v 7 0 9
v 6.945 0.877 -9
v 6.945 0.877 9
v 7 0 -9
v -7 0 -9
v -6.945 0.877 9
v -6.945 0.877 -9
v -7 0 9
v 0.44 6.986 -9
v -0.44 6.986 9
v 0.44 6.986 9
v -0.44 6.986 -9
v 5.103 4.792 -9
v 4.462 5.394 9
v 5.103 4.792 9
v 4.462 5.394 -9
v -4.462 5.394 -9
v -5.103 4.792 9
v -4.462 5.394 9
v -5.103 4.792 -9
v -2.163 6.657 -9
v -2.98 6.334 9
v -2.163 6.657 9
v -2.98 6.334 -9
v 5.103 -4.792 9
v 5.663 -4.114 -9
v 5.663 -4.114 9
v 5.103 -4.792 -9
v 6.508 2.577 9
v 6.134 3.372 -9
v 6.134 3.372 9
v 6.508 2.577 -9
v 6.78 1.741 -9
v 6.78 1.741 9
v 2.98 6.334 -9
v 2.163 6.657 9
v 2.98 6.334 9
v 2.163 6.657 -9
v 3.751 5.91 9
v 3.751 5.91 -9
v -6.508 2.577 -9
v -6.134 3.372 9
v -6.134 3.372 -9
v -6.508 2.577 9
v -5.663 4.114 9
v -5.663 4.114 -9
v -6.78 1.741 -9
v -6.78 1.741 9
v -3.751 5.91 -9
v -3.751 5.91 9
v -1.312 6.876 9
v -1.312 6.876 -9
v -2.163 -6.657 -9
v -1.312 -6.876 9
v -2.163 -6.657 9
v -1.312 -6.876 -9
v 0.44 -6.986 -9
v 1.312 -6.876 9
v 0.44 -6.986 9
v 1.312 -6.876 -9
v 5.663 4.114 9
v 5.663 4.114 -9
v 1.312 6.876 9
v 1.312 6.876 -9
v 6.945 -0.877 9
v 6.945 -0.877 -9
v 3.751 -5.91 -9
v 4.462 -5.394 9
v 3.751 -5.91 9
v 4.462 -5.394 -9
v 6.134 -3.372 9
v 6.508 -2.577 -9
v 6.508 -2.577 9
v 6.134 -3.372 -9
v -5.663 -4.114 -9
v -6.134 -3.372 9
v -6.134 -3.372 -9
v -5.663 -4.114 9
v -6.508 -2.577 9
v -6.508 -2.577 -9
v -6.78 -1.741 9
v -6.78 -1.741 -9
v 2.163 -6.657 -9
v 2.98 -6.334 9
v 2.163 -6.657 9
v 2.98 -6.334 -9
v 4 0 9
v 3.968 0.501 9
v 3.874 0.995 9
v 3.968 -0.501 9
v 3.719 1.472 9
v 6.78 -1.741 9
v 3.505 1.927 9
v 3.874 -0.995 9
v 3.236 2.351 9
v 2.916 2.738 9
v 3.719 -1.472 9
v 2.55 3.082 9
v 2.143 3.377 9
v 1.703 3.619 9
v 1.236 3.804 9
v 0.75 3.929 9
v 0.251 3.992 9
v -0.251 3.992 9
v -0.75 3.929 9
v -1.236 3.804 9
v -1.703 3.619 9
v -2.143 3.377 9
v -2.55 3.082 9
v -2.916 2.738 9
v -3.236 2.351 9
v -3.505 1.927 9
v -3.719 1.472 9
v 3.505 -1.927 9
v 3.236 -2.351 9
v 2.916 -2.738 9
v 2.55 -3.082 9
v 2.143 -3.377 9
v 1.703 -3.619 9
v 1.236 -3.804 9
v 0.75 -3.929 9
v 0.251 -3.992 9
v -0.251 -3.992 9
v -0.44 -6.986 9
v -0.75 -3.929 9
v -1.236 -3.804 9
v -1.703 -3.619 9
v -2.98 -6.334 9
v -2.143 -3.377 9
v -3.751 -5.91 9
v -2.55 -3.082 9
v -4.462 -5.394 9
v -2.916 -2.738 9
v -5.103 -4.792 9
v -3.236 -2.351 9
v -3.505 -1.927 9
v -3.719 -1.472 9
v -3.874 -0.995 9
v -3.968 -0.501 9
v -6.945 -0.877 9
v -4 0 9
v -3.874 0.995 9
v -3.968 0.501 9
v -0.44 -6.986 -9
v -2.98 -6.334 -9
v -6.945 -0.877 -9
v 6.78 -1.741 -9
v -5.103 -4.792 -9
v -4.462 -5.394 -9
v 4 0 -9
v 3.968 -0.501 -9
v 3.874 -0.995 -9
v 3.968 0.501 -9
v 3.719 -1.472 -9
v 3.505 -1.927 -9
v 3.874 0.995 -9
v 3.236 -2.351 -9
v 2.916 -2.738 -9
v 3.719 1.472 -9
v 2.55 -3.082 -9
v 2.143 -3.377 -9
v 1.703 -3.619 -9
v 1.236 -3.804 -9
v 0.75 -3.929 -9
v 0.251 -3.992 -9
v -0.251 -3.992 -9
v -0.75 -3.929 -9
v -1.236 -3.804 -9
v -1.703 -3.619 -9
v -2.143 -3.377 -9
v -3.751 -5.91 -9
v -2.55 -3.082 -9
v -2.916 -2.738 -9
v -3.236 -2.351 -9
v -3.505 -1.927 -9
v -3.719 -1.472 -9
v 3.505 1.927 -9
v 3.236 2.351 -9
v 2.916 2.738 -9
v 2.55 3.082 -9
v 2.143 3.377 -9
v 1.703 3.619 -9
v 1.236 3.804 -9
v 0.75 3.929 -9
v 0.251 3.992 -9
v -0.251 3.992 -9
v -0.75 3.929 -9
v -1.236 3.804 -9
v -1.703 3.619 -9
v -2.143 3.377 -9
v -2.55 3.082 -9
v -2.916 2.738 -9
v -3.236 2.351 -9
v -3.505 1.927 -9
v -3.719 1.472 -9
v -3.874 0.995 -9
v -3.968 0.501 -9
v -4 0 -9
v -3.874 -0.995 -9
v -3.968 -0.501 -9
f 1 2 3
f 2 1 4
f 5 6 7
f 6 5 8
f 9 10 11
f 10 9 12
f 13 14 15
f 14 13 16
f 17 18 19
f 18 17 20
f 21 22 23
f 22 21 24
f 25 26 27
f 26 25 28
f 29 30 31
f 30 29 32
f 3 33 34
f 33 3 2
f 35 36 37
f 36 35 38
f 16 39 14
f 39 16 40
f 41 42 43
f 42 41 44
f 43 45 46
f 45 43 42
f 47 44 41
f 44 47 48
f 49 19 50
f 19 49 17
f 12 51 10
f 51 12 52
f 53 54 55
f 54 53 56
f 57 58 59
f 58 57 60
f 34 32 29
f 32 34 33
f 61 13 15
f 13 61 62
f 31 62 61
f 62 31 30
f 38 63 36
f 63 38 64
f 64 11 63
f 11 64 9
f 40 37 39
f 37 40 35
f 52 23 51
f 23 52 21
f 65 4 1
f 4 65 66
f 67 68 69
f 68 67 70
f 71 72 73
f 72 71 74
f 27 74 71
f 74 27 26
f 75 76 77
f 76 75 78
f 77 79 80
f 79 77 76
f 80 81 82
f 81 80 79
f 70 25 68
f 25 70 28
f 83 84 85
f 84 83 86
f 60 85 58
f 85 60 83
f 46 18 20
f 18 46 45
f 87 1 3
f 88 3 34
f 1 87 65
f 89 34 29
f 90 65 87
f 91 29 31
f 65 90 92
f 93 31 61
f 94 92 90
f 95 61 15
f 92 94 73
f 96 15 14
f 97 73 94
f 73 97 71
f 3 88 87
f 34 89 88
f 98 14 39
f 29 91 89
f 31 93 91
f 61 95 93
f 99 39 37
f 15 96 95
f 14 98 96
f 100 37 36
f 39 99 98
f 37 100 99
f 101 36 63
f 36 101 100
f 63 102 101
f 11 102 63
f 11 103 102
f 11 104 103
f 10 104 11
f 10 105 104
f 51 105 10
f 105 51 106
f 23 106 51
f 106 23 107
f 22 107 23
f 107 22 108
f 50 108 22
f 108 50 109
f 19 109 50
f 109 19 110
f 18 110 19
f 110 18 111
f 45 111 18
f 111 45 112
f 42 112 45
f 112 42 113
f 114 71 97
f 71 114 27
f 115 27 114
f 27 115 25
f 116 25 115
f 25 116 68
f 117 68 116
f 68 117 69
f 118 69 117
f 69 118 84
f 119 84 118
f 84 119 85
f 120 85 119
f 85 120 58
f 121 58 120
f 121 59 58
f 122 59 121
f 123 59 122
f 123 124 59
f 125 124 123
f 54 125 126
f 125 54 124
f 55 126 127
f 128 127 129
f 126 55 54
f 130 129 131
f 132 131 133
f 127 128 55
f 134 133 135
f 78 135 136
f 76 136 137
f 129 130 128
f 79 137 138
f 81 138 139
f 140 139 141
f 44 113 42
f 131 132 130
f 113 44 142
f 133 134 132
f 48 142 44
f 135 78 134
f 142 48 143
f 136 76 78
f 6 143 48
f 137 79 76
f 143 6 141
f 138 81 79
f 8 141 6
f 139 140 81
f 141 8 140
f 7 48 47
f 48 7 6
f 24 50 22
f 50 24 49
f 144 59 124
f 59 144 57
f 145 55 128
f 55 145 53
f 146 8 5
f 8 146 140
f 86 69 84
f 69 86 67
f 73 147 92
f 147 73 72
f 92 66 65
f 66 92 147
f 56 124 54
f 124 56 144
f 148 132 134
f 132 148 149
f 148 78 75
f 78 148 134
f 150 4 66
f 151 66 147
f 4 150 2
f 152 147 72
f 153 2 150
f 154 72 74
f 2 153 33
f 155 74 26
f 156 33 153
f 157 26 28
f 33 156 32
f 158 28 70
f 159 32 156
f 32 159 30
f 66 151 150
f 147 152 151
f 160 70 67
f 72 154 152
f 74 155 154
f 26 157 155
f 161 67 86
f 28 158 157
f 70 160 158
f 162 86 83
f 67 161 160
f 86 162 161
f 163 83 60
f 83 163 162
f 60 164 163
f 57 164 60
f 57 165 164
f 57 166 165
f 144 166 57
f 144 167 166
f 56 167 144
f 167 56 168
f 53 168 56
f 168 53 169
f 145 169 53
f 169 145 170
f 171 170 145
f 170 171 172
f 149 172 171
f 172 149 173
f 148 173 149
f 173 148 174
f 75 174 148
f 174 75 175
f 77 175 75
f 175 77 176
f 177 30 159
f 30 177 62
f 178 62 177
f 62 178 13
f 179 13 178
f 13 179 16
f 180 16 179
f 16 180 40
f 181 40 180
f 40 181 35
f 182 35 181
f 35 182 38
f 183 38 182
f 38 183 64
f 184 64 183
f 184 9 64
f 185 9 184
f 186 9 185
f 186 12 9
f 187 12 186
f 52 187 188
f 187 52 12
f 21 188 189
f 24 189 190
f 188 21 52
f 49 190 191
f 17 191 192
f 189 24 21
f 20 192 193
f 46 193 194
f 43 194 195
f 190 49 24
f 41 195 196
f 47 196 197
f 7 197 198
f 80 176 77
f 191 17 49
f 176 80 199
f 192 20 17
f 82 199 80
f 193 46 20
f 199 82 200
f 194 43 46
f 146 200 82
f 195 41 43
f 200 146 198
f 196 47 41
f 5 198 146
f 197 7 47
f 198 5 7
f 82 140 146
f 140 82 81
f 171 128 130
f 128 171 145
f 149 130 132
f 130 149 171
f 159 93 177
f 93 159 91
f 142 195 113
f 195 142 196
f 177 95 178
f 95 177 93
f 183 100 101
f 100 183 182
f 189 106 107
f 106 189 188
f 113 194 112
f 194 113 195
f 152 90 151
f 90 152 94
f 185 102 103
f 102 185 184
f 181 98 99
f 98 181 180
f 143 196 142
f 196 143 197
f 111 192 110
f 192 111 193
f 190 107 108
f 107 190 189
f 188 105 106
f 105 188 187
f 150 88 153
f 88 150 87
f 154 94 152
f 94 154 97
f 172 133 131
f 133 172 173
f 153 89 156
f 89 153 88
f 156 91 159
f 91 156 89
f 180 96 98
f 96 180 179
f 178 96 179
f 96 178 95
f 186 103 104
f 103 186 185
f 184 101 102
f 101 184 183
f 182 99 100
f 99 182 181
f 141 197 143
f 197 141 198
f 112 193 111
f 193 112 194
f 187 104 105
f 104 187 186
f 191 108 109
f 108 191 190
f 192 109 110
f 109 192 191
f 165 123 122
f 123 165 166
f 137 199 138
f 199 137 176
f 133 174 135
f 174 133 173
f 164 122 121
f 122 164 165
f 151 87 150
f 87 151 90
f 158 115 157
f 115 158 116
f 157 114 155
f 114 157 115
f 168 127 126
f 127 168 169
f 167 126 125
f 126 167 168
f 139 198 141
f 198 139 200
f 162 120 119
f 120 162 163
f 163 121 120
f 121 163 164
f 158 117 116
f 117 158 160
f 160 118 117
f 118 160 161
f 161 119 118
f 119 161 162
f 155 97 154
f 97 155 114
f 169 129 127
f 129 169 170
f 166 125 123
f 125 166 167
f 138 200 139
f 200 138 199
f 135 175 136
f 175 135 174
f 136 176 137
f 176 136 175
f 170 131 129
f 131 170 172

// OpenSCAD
$fn = 50;


difference() {
	union() {
		translate(v = [0, 0, -9.0000000000]) {
			cylinder(h = 18, r = 7.0000000000);
		}
	}
	union() {
		translate(v = [0, 0, -100.0000000000]) {
			cylinder(h = 200, r = 4.0000000000);
		}
	}
}
